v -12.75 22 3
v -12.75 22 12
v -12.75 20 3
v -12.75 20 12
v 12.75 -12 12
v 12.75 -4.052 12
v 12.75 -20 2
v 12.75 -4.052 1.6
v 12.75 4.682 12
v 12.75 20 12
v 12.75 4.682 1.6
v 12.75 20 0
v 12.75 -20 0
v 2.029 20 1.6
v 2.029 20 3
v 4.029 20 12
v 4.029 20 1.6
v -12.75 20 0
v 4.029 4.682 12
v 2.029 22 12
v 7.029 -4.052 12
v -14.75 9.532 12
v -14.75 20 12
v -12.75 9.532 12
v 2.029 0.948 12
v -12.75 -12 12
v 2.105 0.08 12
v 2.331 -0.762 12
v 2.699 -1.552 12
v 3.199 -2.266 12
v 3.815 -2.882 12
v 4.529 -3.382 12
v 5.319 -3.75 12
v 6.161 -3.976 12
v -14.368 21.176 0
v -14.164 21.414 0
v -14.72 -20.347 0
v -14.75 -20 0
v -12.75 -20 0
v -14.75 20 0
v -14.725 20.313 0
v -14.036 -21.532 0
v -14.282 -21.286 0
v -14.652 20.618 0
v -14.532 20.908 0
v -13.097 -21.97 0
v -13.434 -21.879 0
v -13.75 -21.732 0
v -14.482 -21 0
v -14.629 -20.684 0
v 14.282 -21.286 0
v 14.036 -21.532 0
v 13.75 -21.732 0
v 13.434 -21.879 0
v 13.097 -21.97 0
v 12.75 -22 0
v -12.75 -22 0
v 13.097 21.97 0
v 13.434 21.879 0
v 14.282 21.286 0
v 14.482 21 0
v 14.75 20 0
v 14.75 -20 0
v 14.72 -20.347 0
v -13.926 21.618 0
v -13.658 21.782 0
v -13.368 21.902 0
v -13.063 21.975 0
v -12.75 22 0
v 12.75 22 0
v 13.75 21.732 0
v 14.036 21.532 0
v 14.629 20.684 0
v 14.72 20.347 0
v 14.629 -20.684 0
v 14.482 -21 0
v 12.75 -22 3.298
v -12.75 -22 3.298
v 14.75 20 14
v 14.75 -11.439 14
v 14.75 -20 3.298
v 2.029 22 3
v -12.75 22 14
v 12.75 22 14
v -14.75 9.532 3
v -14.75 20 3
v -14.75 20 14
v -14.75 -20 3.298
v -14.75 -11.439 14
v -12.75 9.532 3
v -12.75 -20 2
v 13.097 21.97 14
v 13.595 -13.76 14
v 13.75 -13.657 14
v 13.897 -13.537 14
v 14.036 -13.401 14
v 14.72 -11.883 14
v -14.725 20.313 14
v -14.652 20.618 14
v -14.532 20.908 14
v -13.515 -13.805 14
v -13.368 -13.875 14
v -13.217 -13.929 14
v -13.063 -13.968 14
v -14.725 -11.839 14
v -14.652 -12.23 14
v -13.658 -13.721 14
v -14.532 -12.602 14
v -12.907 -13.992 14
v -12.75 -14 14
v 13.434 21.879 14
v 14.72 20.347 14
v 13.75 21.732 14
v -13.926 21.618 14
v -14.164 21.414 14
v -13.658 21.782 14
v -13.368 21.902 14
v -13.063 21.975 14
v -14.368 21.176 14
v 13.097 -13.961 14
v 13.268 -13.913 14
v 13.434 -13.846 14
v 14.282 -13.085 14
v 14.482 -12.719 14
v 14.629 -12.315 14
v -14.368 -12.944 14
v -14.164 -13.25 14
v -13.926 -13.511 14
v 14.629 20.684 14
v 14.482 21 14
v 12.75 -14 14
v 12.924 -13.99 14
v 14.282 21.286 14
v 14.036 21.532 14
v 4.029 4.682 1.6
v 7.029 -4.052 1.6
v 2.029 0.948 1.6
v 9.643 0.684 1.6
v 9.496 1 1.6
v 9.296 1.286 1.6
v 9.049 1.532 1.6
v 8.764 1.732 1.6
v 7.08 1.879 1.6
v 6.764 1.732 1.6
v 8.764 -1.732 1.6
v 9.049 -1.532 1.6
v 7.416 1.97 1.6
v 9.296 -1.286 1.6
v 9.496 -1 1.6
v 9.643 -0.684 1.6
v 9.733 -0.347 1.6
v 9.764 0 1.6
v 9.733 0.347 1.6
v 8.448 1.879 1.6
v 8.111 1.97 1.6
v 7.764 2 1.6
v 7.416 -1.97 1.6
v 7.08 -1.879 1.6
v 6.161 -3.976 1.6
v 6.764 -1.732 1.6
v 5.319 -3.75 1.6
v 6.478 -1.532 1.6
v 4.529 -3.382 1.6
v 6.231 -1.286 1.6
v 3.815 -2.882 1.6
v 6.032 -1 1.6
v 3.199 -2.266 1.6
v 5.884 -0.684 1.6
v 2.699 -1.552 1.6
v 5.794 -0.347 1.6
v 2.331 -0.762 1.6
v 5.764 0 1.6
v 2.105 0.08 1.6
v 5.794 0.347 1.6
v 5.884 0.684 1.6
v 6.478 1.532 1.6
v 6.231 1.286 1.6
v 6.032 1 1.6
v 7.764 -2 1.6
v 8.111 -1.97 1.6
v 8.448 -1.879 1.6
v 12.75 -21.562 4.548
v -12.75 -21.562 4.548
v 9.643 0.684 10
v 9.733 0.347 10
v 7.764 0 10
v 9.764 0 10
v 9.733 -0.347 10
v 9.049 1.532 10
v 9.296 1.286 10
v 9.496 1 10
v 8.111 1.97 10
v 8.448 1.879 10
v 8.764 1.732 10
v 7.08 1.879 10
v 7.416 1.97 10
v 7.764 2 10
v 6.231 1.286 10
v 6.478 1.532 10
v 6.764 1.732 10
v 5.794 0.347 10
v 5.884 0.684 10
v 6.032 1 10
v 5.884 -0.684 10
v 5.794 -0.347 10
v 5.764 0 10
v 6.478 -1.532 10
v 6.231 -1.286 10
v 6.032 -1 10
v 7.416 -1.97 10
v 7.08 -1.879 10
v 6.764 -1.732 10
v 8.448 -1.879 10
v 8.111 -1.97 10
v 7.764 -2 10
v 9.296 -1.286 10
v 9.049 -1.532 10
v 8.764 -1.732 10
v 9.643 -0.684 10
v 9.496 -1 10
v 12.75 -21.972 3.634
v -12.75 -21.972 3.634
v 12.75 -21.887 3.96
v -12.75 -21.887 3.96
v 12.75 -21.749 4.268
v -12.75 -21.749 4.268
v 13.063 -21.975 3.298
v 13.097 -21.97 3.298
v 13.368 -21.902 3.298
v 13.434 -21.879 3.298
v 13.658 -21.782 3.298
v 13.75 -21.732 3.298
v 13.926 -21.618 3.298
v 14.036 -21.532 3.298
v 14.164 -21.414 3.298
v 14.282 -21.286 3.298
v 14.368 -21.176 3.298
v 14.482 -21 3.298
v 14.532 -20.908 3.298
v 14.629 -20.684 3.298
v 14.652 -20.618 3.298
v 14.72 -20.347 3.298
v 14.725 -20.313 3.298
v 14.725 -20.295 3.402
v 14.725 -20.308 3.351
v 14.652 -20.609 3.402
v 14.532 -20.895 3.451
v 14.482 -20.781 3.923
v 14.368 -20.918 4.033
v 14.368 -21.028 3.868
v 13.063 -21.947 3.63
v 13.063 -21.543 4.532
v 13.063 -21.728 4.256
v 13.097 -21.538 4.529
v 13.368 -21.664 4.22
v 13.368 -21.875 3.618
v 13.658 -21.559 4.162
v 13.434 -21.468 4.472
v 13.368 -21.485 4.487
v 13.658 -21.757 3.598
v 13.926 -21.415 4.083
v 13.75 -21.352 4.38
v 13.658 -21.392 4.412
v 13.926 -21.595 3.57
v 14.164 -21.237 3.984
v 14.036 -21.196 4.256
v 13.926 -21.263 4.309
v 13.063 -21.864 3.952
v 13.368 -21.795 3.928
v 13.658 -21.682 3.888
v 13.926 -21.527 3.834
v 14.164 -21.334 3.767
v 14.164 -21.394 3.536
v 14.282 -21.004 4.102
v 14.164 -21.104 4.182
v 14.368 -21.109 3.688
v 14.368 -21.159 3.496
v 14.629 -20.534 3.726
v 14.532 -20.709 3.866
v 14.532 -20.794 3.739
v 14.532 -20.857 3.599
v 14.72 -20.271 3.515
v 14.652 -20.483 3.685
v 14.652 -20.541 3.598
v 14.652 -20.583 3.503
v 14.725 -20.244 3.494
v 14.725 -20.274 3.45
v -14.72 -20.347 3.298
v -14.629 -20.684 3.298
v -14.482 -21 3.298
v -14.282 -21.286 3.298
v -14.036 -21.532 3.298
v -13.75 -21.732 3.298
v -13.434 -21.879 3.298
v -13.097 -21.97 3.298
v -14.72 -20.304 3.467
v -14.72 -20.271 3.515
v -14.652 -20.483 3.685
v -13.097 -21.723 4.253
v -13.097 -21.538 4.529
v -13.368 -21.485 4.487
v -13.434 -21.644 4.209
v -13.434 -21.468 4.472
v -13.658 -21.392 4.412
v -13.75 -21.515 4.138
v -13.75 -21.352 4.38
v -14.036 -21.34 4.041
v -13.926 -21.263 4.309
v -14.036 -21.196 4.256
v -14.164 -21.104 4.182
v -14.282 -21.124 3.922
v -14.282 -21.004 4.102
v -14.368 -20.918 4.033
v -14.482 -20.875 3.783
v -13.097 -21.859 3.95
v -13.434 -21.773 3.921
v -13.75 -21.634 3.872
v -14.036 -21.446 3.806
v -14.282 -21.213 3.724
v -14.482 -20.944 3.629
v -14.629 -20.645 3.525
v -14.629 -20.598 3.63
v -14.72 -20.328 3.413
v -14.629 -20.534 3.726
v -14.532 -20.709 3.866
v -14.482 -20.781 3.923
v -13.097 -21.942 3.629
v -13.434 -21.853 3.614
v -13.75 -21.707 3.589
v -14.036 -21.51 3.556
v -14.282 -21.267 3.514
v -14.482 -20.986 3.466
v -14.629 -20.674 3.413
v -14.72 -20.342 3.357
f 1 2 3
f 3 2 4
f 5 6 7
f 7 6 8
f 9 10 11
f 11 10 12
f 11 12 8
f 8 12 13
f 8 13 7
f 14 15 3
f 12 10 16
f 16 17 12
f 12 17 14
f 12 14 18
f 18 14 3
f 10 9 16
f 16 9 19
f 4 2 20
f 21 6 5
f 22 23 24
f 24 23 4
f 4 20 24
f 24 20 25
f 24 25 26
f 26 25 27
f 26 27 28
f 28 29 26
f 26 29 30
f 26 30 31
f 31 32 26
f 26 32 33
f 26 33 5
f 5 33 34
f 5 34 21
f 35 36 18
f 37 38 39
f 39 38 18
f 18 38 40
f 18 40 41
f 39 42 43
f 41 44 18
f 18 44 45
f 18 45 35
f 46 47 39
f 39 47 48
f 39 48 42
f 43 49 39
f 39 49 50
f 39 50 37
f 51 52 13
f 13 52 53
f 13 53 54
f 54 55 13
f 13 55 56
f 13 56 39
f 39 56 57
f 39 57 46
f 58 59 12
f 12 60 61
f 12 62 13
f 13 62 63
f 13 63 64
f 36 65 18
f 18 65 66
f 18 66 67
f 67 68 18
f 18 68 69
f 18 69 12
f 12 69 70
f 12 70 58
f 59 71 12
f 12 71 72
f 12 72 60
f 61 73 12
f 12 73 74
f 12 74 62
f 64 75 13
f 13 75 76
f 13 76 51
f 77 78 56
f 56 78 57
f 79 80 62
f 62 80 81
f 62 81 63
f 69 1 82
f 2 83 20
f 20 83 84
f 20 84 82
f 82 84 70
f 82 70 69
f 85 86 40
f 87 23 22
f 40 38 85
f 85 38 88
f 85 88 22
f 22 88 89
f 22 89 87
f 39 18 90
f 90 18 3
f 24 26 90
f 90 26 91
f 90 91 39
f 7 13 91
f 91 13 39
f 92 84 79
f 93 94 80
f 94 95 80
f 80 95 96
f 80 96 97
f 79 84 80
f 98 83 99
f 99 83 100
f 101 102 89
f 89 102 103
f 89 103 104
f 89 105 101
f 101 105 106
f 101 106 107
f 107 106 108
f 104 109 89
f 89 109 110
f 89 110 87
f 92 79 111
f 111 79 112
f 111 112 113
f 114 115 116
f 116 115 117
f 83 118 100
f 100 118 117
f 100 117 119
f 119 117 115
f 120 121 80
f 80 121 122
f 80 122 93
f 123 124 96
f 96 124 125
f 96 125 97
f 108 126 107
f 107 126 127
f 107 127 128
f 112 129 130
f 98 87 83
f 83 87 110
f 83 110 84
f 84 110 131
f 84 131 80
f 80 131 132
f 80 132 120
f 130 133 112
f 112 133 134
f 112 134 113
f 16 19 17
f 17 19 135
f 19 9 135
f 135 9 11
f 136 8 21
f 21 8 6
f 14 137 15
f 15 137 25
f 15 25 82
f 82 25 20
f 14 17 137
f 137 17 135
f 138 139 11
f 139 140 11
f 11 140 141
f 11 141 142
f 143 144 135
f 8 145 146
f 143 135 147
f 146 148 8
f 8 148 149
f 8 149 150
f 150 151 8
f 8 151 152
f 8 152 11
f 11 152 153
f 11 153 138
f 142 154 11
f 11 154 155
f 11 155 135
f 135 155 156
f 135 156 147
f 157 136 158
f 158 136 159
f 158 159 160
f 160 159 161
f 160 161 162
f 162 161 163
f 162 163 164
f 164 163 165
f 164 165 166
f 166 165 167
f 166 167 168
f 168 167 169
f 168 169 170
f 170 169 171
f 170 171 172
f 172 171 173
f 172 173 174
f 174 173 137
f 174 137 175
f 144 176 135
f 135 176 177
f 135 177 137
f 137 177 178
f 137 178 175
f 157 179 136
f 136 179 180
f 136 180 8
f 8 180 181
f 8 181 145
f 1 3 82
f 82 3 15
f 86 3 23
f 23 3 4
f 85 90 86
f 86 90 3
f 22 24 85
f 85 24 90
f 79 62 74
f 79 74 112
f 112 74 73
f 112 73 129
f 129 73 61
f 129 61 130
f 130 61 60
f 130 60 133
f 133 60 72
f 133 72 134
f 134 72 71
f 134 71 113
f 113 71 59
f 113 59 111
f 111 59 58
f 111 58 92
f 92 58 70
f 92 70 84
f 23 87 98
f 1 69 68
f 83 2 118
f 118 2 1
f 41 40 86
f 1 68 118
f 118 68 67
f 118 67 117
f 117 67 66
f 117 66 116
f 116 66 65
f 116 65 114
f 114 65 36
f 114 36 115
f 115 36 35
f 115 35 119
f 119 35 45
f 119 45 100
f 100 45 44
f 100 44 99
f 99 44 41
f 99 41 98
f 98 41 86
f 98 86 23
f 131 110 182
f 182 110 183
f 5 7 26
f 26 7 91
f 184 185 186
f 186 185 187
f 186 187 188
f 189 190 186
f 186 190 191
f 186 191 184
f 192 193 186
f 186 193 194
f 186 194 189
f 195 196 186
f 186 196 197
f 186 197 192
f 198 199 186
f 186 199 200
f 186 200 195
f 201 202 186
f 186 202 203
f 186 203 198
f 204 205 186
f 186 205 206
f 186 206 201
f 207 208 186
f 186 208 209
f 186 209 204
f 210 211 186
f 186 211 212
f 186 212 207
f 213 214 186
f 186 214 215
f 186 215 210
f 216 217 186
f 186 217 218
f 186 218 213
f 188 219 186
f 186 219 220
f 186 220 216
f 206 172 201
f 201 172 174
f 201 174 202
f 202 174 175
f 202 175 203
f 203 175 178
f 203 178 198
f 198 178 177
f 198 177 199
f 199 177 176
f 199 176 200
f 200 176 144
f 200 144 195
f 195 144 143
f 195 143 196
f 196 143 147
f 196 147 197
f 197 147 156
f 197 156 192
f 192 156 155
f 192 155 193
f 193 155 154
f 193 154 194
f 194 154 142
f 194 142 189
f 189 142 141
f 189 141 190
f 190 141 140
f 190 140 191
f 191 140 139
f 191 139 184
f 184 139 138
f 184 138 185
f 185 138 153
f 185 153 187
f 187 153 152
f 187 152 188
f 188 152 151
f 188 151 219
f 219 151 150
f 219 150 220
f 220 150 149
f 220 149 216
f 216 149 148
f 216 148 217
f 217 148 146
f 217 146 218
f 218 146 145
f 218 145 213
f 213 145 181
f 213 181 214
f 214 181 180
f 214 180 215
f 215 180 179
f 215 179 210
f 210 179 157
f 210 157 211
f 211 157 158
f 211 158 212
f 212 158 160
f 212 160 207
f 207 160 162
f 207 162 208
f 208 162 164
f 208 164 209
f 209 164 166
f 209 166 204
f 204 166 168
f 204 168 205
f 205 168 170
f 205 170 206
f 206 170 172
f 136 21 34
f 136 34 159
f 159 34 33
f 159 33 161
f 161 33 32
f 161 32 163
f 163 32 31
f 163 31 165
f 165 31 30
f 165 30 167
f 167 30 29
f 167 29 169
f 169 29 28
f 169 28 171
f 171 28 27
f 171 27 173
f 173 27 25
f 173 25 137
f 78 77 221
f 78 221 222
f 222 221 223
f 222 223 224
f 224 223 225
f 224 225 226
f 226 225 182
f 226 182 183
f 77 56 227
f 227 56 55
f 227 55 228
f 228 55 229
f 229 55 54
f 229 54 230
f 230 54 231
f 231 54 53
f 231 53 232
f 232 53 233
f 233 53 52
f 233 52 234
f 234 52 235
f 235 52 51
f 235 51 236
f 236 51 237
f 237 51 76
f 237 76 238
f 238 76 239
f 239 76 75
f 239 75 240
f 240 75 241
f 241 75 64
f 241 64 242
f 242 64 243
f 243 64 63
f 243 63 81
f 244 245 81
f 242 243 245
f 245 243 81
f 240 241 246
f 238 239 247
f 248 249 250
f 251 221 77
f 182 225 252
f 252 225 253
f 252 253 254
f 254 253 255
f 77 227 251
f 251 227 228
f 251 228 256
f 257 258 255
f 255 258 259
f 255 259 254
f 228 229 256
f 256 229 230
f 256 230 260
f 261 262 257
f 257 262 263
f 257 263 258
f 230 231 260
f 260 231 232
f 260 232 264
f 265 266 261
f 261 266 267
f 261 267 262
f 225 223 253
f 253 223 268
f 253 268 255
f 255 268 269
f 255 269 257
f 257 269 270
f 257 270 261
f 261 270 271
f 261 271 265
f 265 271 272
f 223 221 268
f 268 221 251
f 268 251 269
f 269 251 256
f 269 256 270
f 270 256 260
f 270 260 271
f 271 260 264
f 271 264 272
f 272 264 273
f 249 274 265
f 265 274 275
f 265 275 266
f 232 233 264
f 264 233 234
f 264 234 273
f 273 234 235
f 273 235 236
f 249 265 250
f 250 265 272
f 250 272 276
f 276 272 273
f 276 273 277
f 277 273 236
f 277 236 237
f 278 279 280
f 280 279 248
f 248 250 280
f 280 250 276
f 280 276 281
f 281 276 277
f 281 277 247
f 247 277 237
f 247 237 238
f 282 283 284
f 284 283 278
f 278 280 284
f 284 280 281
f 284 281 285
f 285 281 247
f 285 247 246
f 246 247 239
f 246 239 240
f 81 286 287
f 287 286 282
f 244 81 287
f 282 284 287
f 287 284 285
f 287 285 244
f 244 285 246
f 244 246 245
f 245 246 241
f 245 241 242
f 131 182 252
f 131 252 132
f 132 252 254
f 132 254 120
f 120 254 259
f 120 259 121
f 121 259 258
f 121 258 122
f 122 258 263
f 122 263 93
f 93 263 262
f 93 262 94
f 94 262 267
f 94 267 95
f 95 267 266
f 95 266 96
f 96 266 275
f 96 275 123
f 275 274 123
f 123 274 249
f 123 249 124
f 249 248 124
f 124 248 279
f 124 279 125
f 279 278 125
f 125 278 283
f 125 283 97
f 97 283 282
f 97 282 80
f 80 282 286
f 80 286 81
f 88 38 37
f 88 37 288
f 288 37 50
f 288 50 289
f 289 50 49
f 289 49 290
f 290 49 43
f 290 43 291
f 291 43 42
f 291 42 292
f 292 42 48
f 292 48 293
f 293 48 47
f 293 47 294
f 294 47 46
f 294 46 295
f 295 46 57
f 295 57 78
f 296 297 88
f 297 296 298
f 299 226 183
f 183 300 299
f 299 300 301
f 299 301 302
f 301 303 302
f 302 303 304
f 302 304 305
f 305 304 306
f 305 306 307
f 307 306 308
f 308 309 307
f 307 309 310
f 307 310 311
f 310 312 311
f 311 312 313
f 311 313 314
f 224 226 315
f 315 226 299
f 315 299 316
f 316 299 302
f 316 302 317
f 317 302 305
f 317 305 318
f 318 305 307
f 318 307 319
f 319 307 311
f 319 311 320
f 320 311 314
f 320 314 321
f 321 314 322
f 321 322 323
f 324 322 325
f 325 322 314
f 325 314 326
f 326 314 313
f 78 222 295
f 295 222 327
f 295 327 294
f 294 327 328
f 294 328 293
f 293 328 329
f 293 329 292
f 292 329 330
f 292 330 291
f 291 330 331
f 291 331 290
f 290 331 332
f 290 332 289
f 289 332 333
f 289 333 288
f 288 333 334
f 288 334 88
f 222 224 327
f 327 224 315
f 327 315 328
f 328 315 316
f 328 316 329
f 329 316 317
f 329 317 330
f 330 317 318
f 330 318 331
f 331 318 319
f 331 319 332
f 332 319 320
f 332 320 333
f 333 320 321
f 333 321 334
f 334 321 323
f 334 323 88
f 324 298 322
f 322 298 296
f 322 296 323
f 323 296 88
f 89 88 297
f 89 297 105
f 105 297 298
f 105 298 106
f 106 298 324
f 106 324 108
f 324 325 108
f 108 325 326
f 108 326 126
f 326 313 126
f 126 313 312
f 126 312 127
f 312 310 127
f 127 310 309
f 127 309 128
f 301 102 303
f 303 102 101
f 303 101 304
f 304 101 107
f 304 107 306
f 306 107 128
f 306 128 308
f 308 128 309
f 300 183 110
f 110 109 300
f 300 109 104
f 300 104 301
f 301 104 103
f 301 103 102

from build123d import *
from OCP.BRepFilletAPI import BRepFilletAPI_MakeChamfer

# Parameters (mm, degrees)
SKETCH1_W           = 29.5
SKETCH1_H           = 44
SKETCH1_W_2         = 25.5
SKETCH1_H_2         = 40
BOSS_EXTRUDE1_DEPTH = 12
BOSS_EXTRUDE2_START = 12
SKETCH1_2_W         = 29.5
SKETCH1_2_H         = 44
SKETCH1_2_W_2       = 25.5
SKETCH1_2_H_2       = 40
BOSS_EXTRUDE2_DEPTH = 2
BOSS_EXTRUDE3_DEPTH = 10.4
CUT_EXTRUDE1_REACH  = 50.472
SKETCH3_W           = 14.779376432
SKETCH3_H           = 9
CUT_EXTRUDE2_REACH  = 41.373
SKETCH4_W           = 9
SKETCH4_H           = 10.467816728
FILLET1_R           = 2
FILLET2_SIZE        = 8
FILLET2_SIZE2       = 10
SKETCH6_R           = 2
CUT_EXTRUDE3_DEPTH  = 8.4
FILLET3_R           = 5
FILLET5_R           = 2
FILLET6_R           = 2


with BuildPart() as part:
    # Sketch1 → Boss-Extrude1 (new body)
    with BuildSketch(Plane.XY):
        Rectangle(SKETCH1_W, SKETCH1_H)
        Rectangle(SKETCH1_W_2, SKETCH1_H_2, mode=Mode.SUBTRACT)
    extrude(amount=BOSS_EXTRUDE1_DEPTH)

    # Sketch1<2> → Boss-Extrude2 (add)
    # profile 1 of 2: a face of its own
    with BuildSketch(Plane.XY.offset(BOSS_EXTRUDE2_START)):
        Rectangle(SKETCH1_2_W, SKETCH1_2_H)
        Rectangle(SKETCH1_2_W_2, SKETCH1_2_H_2, mode=Mode.SUBTRACT)
    # profile 2 of 2: a face of its own
    with BuildSketch(Plane.XY.offset(BOSS_EXTRUDE2_START)):
        Rectangle(SKETCH1_2_W_2, SKETCH1_2_H_2)
    extrude(amount=BOSS_EXTRUDE2_DEPTH)

    # Sketch2 → Boss-Extrude3 (add)
    with BuildSketch(Plane(origin=(0, 0, 12), x_dir=(-1, 0, 0), z_dir=(0, 0, -1))):
        Polygon((-4.029376432, 20), (-4.029376432, 4.682180434), (-12.75, 4.682180434), (-12.75, -4.051886914), (-2.029376432, -4.051886914), (-2.029376432, 20), align=None)
    extrude(amount=BOSS_EXTRUDE3_DEPTH)

    # Sketch3 → Cut-Extrude1 (cut, up to next)
    with BuildSketch(Plane(origin=(0, 22, 0), x_dir=(1, 0, 0), z_dir=(0, 1, 0)), mode=Mode.PRIVATE) as cut_extrude1_sk1:
        with Locations((-5.360311784, -7.5)):
            Rectangle(SKETCH3_W, SKETCH3_H)
    cut_extrude1_tool1 = extrude(cut_extrude1_sk1.sketch, amount=-CUT_EXTRUDE1_REACH, mode=Mode.PRIVATE) & part.part
    add(cut_extrude1_tool1.solids().sort_by_distance((-5.360312, 22, 7.5))[0], mode=Mode.SUBTRACT)

    # Sketch4 → Cut-Extrude2 (cut, up to next)
    with BuildSketch(Plane.ZY.offset(14.75), mode=Mode.PRIVATE) as cut_extrude2_sk1:
        with Locations((7.5, 14.766091636)):
            Rectangle(SKETCH4_W, SKETCH4_H)
    cut_extrude2_tool1 = extrude(cut_extrude2_sk1.sketch, amount=-CUT_EXTRUDE2_REACH, mode=Mode.PRIVATE) & part.part
    add(cut_extrude2_tool1.solids().sort_by_distance((-14.75, 14.766092, 7.5))[0], mode=Mode.SUBTRACT)

    # Fillet1
    fillet1_edges = [part.edges().sort_by_distance(p)[0] for p in [
        (-14.75, 22, 7),
        (14.75, 22, 7),
    ]]
    fillet(fillet1_edges, radius=FILLET1_R - 0.0001)  # a hair under: the kernel refuses the full size

    # Fillet2: one chamfer whose edges measure the first distance from different faces: ONE call of the kernel's chamfer builder (chamfer() names one face for all edges)
    fillet2_edges_1 = [part.edges().sort_by_distance(p)[0] for p in [
        (0, -20, 12),
    ]]
    fillet2_side_1 = [part.faces().sort_by_distance(p)[0] for p in [
        (-2.893950715, -1.385908374, 12),
    ]]
    fillet2_edges_2 = [part.edges().sort_by_distance(p)[0] for p in [
        (0, -22, 14),
    ]]
    fillet2_side_2 = [part.faces().sort_by_distance(p)[0] for p in [
        (0, -0.028542601, 14),
    ]]
    fillet2 = BRepFilletAPI_MakeChamfer(part.part.solid().wrapped)
    for e in fillet2_edges_1:
        fillet2.Add(FILLET2_SIZE, FILLET2_SIZE2, e.wrapped, fillet2_side_1[0].wrapped)  # the first distance lies on this face
    for e in fillet2_edges_2:
        fillet2.Add(FILLET2_SIZE, FILLET2_SIZE2, e.wrapped, fillet2_side_2[0].wrapped)  # the first distance lies on this face
    add(Compound.cast(fillet2.Shape()), mode=Mode.REPLACE)

    # Sketch6 → Cut-Extrude3 (cut)
    with BuildSketch(Plane(origin=(0, 0, 1.6), x_dir=(-1, 0, 0), z_dir=(0, 0, -1))):
        with Locations((-7.7635572, 0)):
            Circle(SKETCH6_R)
    extrude(amount=-CUT_EXTRUDE3_DEPTH, mode=Mode.SUBTRACT)

    # Fillet3
    fillet3_edges = [part.edges().sort_by_distance(p)[0] for p in [
        (2.029376432, -4.051886914, 6.8),
    ]]
    fillet(fillet3_edges, radius=FILLET3_R)

    # Fillet5
    fillet5_edges = [part.edges().sort_by_distance(p)[0] for p in [
        (0, -22, 4),
    ]]
    fillet(fillet5_edges, radius=FILLET5_R)

    # Fillet6
    fillet6_edges = [part.edges().sort_by_distance(p)[0] for p in [
        (14.75, -17.780868809, 9.273913988),
        (14.75, -22, 1.649218941),
        (-14.75, -22, 1.649218941),
        (-14.75, -17.780868809, 9.273913988),
        (-14.75, -21.887256638, 3.960451764),
        (14.75, -21.887256638, 3.960451764),
    ]]
    fillet(fillet6_edges, radius=FILLET6_R)


solid = part.part
